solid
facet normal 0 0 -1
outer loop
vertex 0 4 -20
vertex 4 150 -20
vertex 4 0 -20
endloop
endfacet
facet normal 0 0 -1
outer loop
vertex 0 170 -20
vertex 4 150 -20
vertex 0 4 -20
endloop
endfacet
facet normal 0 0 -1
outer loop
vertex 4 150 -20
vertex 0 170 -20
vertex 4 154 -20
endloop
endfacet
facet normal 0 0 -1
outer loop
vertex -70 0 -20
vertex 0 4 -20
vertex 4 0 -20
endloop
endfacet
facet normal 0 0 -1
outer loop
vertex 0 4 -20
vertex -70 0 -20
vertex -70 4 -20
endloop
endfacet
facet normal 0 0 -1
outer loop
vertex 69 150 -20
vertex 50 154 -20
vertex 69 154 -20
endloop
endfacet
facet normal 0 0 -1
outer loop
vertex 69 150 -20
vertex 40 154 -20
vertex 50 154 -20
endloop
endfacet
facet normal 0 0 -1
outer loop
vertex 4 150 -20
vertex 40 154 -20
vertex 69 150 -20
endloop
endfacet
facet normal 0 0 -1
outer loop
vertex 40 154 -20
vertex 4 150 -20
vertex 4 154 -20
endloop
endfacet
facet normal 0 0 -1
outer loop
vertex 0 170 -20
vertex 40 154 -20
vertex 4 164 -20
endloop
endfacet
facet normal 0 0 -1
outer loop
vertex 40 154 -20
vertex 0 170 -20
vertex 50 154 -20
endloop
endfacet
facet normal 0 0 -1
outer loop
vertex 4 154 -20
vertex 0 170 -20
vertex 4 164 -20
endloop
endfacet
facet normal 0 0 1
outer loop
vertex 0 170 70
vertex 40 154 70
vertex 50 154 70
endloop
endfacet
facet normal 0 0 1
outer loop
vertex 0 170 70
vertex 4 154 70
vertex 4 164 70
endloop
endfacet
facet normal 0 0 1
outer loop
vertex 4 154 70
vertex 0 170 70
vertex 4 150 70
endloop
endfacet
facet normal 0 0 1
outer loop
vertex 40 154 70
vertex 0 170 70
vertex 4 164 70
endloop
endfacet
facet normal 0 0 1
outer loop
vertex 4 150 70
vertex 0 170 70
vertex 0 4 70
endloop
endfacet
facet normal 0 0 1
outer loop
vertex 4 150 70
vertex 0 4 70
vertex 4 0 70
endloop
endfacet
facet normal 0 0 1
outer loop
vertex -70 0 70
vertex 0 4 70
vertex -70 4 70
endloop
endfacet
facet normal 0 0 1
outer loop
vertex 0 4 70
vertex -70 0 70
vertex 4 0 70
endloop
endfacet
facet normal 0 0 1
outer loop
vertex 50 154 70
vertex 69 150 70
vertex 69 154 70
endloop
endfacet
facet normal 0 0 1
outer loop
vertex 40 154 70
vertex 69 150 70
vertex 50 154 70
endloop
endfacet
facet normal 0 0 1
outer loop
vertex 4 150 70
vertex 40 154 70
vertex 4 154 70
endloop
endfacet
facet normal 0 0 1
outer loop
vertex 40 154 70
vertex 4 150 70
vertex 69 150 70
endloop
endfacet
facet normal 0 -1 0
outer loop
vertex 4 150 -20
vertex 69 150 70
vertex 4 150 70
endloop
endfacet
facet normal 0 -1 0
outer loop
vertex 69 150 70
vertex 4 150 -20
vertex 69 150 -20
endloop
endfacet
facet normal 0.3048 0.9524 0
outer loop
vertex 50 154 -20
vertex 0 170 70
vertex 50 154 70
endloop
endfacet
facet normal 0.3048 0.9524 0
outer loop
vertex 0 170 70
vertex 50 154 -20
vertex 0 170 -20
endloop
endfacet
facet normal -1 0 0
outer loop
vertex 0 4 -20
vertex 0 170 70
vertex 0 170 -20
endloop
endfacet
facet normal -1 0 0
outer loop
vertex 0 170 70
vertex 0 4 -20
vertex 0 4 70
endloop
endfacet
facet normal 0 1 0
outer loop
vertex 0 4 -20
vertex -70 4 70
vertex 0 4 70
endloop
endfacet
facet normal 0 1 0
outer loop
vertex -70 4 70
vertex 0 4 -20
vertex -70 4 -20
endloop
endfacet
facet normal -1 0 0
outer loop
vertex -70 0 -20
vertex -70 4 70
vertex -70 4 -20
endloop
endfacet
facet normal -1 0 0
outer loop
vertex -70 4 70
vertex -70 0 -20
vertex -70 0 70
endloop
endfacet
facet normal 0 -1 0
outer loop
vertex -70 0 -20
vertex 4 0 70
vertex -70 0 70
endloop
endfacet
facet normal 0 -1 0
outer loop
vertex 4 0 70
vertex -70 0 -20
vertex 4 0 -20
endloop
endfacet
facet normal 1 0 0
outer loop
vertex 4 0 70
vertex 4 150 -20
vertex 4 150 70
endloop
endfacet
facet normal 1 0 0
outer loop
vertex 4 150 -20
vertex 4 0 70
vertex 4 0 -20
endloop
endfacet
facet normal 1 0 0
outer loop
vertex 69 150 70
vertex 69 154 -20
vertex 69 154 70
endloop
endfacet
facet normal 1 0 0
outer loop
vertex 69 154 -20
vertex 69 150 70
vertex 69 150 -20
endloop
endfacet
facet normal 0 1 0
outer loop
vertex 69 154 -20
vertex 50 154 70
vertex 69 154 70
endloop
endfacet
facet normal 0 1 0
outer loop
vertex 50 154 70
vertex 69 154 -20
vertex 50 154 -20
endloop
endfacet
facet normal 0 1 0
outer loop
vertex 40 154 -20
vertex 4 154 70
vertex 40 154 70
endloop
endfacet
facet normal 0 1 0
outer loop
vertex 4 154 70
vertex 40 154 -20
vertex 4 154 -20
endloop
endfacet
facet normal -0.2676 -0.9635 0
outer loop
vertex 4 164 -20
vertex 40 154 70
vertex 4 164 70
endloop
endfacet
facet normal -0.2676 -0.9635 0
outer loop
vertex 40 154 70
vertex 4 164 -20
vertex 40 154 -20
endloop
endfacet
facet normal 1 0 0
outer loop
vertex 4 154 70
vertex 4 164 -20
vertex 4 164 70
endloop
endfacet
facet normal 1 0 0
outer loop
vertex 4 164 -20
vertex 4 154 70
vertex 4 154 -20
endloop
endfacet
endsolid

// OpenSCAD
difference(){

    union(){
        translate([0,0,-20])
            linear_extrude(90){
                    polygon([[-70,0],[4,0],[4,150],[50,150],[50,154],[0,170],[0,4],[-70,4]]);
            };
        translate([0,0,-20])    
        linear_extrude(90){
            polygon([[-70,0],[4,0],[4,150],[69,150],[69,154],[0,154],[0,4],[-70,4]]);
        }
    };
        translate([0,0,-40])
        linear_extrude(130){
                polygon([[4,154],[40,154],[4,164]]);
        };
        
}
